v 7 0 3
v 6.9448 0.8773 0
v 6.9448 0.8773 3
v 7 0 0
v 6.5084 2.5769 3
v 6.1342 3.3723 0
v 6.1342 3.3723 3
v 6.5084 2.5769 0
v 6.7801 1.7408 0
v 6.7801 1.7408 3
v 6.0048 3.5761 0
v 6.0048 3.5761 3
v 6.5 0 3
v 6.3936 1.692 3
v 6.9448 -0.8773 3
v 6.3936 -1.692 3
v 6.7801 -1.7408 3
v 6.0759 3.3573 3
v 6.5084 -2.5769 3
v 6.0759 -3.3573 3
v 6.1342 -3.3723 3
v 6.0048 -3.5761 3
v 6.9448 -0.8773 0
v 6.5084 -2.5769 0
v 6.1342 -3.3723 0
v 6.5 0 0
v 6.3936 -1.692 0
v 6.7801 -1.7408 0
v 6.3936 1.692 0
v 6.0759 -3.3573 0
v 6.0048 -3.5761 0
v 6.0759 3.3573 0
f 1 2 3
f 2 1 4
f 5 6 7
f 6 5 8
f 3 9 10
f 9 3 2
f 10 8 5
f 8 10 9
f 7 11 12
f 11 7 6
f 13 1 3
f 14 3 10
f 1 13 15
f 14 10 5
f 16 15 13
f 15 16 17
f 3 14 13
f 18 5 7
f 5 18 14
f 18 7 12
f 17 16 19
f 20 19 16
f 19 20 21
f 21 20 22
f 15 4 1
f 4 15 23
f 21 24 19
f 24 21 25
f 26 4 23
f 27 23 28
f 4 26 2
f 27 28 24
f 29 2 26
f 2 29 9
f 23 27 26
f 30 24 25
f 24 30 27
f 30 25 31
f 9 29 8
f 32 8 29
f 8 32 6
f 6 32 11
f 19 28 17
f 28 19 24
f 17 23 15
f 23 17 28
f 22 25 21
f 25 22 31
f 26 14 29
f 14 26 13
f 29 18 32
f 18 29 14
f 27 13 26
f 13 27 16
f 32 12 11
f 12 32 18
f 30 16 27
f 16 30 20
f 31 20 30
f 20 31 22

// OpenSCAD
$fn = 50;


difference() {
	union() {
		cylinder(h = 3, r = 7.0000000000);
		translate(v = [-10.0000000000, 0, 0]) {
			cylinder(h = 3, r = 7.0000000000);
		}
	}
	union() {
		cylinder(h = 3, r = 3.2500000000);
		cylinder(h = 3, r = 1.8000000000);
		cylinder(h = 3, r = 1.8000000000);
		cylinder(h = 3, r = 1.8000000000);
		translate(v = [-14.5000000000, 0, 0]) {
			hull() {
				translate(v = [-3.7500000000, 0.0000000000, 0]) {
					cylinder(h = 3, r = 7.5000000000);
				}
				translate(v = [3.7500000000, 0.0000000000, 0]) {
					cylinder(h = 3, r = 7.5000000000);
				}
				translate(v = [-3.7500000000, -0.0000000000, 0]) {
					cylinder(h = 3, r = 7.5000000000);
				}
				translate(v = [3.7500000000, -0.0000000000, 0]) {
					cylinder(h = 3, r = 7.5000000000);
				}
			}
		}
		translate(v = [-7.0000000000, 0, 0.0000000000]) {
			cylinder(h = 3, r = 13.5000000000);
		}
	}
}
